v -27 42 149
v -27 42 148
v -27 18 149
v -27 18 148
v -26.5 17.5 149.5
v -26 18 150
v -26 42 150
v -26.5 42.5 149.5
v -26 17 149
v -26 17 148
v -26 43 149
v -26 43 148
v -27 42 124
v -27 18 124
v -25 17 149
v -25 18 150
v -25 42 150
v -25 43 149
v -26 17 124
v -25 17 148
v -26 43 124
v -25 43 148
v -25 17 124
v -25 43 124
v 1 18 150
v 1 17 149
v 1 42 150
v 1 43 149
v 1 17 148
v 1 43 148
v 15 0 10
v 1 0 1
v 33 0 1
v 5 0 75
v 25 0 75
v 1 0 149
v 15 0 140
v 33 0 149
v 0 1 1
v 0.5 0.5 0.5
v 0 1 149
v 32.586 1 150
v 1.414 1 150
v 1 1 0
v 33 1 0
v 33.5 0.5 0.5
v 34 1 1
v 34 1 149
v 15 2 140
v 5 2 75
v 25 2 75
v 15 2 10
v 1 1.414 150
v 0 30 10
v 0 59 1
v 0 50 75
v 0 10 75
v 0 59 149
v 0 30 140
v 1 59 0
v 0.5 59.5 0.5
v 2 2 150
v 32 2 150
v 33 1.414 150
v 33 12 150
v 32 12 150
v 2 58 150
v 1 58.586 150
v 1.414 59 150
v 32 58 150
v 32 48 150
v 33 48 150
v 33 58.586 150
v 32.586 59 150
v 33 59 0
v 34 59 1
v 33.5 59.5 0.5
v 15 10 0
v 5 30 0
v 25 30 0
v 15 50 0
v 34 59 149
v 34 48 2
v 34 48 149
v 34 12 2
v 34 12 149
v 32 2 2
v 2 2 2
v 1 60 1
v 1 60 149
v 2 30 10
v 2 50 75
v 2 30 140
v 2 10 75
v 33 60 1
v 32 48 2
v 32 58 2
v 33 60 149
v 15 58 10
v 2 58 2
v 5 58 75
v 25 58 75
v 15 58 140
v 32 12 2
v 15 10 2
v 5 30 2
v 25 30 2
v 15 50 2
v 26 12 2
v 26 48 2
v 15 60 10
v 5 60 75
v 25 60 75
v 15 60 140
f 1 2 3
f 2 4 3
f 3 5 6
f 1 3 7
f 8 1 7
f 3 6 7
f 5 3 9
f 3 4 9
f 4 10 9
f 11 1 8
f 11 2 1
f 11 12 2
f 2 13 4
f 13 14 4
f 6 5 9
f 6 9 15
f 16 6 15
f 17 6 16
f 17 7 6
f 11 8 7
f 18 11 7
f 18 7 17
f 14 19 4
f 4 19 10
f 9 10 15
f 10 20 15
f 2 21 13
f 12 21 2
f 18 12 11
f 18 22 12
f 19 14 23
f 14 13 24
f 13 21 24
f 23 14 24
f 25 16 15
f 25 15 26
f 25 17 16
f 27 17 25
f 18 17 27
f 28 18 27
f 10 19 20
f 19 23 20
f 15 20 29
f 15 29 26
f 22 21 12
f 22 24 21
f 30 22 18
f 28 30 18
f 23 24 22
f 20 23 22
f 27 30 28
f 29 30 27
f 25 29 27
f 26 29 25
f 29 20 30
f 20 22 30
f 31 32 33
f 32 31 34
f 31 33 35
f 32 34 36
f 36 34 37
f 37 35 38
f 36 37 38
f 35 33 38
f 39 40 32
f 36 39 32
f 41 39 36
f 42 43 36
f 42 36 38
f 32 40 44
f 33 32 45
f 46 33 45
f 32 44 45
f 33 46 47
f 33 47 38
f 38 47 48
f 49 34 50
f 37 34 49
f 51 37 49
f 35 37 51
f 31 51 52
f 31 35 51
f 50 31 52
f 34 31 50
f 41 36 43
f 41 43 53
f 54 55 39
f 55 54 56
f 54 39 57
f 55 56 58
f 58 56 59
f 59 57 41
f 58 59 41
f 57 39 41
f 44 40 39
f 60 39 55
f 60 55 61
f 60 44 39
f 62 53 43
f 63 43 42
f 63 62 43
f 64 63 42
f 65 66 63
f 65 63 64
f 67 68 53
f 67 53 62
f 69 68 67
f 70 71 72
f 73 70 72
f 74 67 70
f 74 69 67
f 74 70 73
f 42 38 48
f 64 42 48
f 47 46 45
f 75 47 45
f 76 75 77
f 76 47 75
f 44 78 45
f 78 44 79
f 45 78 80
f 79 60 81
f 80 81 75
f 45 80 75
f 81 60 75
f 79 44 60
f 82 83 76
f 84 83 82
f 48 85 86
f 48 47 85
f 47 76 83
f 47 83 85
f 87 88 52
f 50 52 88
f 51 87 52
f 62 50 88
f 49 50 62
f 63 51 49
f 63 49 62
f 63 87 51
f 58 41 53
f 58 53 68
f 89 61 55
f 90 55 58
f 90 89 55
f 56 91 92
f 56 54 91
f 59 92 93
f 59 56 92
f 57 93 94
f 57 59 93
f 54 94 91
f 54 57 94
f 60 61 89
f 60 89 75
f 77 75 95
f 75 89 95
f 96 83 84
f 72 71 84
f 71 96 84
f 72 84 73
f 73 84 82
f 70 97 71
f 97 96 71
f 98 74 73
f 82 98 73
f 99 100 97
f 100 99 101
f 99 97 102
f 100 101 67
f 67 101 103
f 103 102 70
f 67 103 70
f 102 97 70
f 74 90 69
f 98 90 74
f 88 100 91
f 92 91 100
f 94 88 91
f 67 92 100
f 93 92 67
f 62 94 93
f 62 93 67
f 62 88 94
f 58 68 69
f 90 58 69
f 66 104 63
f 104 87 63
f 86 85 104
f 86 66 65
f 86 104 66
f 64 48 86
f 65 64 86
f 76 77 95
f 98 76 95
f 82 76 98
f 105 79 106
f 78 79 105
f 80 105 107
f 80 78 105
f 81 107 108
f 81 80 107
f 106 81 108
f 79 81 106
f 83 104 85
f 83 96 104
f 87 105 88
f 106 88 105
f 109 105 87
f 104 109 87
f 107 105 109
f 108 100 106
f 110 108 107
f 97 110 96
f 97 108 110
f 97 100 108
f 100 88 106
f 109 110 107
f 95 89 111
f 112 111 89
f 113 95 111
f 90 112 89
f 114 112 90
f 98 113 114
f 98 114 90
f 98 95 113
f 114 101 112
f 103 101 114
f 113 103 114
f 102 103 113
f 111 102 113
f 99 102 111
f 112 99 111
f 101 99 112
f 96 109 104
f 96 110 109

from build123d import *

# Parameters (mm, degrees)
BOX003_W                       = 28
BOX003_H                       = 26
BOX003_DEPTH                   = 2
BOX004_W                       = 2
BOX004_H                       = 26
BOX004_DEPTH                   = 26
CHAMFER003_SIZE                = 1
CHAMFER004_SIZE                = 1
EXTRUDE_DEPTH                  = 90
EXTRUDE_ONTO_SKETCH_ROLL_ANGLE = 90
BOX005_W                       = 11
BOX005_H                       = 36
BOX005_DEPTH                   = 148
BOX002_W                       = 30
BOX002_H                       = 56
BOX002_DEPTH                   = 148
BOX_W                          = 34
BOX_H                          = 60
BOX_DEPTH                      = 150
POCKET_DEPTH                   = 5
POCKET001_DEPTH                = 5
CHAMFER_SIZE                   = 1
CHAMFER001_SIZE                = 1
CHAMFER002_SIZE                = 1
CHAMFER005_SIZE                = 1


with BuildPart() as handle_horisontal:
    # Box003 → Box003 (new body)
    with BuildSketch(Plane(origin=(-26, 17, 148), x_dir=(1, 0, 0), z_dir=(0, 0, 1))):
        with Locations((14, 13)):
            Rectangle(BOX003_W, BOX003_H)
    extrude(amount=BOX003_DEPTH)


with BuildPart() as chamfer004:
    # Box004 → Box004 (new body)
    with BuildSketch(Plane(origin=(-26, 17, 124), x_dir=(1, 0, 0), z_dir=(0, 0, 1))):
        with Locations((1, 13)):
            Rectangle(BOX004_W, BOX004_H)
    extrude(amount=BOX004_DEPTH)

    # Fusion: union handle horisontal
    add(handle_horisontal.part)


with BuildPart() as chamfer004_1:
    # Fusion placement: moved
    add(chamfer004.part.moved(Location((-1, 0, 0))))

    # Chamfer003
    chamfer003_edges = [chamfer004_1.edges().sort_by_distance(p)[0] for p in [
        (-27, 30, 150),
        (-26, 43, 150),
        (-26, 17, 150),
        (-12, 43, 150),
        (-12, 17, 150),
    ]]
    chamfer(chamfer003_edges, length=CHAMFER003_SIZE)

    # Chamfer004
    chamfer004_edges = [chamfer004_1.edges().sort_by_distance(p)[0] for p in [
        (-27, 17, 148.5),
        (-27, 43, 148.5),
        (-27, 17, 136),
        (-27, 43, 136),
    ]]
    chamfer(chamfer004_edges, length=CHAMFER004_SIZE)


with BuildPart() as extrude_body:
    # Sketch as drawn → Extrude (new)
    with BuildSketch(Plane.XY):
        Polygon((15, 140), (25, 75), (15, 10), (5, 75), align=None)
    extrude(amount=-EXTRUDE_DEPTH)


with BuildPart() as extrude_body_1:
    # Extrude onto Sketch roll: moved
    add(extrude_body.part.rotate(Axis((0, 0, 0), (1, 0, 0)), EXTRUDE_ONTO_SKETCH_ROLL_ANGLE))


with BuildPart() as extrude_body_2:
    # Extrude onto Sketch placement: moved
    add(extrude_body_1.part)


with BuildPart() as extrude_body_3:
    # Extrude placement: moved
    add(extrude_body_2.part.moved(Location((0, -11, 0))))


with BuildPart() as inside_cup001:
    # Box005 → Box005 (new body)
    with BuildSketch(Plane(origin=(26, 12, 2), x_dir=(1, 0, 0), z_dir=(0, 0, 1))):
        with Locations((5.5, 18)):
            Rectangle(BOX005_W, BOX005_H)
    extrude(amount=BOX005_DEPTH)


with BuildPart() as inside_cup:
    # Box002 → Box002 (new body)
    with BuildSketch(Plane(origin=(2, 2, 2), x_dir=(1, 0, 0), z_dir=(0, 0, 1))):
        with Locations((15, 28)):
            Rectangle(BOX002_W, BOX002_H)
    extrude(amount=BOX002_DEPTH)


with BuildPart() as chamfer005:
    # Box → Box (new body)
    with BuildSketch(Plane.XY):
        with Locations((17, 30)):
            Rectangle(BOX_W, BOX_H)
    extrude(amount=BOX_DEPTH)

    # Cut: cut inside-cup
    add(inside_cup.part, mode=Mode.SUBTRACT)

    # Cut001: cut inside-cup001
    add(inside_cup001.part, mode=Mode.SUBTRACT)

    # Cut002: cut Extrude body
    add(extrude_body_3.part, mode=Mode.SUBTRACT)

    # Sketch001 → Pocket (cut)
    with BuildSketch(Plane(origin=(0, 0, 0), x_dir=(0, -1, 0), z_dir=(-1, 0, 0))):
        Polygon((-30, 140), (-10, 75), (-30, 10), (-50, 75), align=None)
    extrude(amount=-POCKET_DEPTH, mode=Mode.SUBTRACT)

    # Sketch002 → Pocket001 (cut)
    with BuildSketch(Plane(origin=(0, 0, 0), x_dir=(1, 0, 0), z_dir=(0, 0, -1))):
        Polygon((15, -10), (25, -30), (15, -50), (5, -30), align=None)
    extrude(amount=-POCKET001_DEPTH, mode=Mode.SUBTRACT)

    # Chamfer
    chamfer_edges = [chamfer005.edges().sort_by_distance(p)[0] for p in [
        (0, 30, 0),
        (17, 0, 0),
        (17, 60, 0),
        (34, 30, 0),
    ]]
    chamfer(chamfer_edges, length=CHAMFER_SIZE)

    # Chamfer001
    chamfer001_edges = [chamfer005.edges().sort_by_distance(p)[0] for p in [
        (34, 0, 75.5),
        (34, 60, 75.5),
    ]]
    chamfer(chamfer001_edges, length=CHAMFER001_SIZE)

    # Chamfer002
    chamfer002_edges = [chamfer005.edges().sort_by_distance(p)[0] for p in [
        (0, 0, 75.5),
        (0, 60, 75.5),
    ]]
    chamfer(chamfer002_edges, length=CHAMFER002_SIZE)

    # Chamfer005
    chamfer005_edges = [chamfer005.edges().sort_by_distance(p)[0] for p in [
        (17, 0, 150),
        (0.5, 0.5, 150),
        (33.5, 0.5, 150),
        (17, 60, 150),
        (0.5, 59.5, 150),
        (33.5, 59.5, 150),
        (0, 30, 150),
        (34, 53.5, 150),
        (34, 6.5, 150),
    ]]
    chamfer(chamfer005_edges, length=CHAMFER005_SIZE)


solid = Compound([chamfer004_1.part, chamfer005.part])
